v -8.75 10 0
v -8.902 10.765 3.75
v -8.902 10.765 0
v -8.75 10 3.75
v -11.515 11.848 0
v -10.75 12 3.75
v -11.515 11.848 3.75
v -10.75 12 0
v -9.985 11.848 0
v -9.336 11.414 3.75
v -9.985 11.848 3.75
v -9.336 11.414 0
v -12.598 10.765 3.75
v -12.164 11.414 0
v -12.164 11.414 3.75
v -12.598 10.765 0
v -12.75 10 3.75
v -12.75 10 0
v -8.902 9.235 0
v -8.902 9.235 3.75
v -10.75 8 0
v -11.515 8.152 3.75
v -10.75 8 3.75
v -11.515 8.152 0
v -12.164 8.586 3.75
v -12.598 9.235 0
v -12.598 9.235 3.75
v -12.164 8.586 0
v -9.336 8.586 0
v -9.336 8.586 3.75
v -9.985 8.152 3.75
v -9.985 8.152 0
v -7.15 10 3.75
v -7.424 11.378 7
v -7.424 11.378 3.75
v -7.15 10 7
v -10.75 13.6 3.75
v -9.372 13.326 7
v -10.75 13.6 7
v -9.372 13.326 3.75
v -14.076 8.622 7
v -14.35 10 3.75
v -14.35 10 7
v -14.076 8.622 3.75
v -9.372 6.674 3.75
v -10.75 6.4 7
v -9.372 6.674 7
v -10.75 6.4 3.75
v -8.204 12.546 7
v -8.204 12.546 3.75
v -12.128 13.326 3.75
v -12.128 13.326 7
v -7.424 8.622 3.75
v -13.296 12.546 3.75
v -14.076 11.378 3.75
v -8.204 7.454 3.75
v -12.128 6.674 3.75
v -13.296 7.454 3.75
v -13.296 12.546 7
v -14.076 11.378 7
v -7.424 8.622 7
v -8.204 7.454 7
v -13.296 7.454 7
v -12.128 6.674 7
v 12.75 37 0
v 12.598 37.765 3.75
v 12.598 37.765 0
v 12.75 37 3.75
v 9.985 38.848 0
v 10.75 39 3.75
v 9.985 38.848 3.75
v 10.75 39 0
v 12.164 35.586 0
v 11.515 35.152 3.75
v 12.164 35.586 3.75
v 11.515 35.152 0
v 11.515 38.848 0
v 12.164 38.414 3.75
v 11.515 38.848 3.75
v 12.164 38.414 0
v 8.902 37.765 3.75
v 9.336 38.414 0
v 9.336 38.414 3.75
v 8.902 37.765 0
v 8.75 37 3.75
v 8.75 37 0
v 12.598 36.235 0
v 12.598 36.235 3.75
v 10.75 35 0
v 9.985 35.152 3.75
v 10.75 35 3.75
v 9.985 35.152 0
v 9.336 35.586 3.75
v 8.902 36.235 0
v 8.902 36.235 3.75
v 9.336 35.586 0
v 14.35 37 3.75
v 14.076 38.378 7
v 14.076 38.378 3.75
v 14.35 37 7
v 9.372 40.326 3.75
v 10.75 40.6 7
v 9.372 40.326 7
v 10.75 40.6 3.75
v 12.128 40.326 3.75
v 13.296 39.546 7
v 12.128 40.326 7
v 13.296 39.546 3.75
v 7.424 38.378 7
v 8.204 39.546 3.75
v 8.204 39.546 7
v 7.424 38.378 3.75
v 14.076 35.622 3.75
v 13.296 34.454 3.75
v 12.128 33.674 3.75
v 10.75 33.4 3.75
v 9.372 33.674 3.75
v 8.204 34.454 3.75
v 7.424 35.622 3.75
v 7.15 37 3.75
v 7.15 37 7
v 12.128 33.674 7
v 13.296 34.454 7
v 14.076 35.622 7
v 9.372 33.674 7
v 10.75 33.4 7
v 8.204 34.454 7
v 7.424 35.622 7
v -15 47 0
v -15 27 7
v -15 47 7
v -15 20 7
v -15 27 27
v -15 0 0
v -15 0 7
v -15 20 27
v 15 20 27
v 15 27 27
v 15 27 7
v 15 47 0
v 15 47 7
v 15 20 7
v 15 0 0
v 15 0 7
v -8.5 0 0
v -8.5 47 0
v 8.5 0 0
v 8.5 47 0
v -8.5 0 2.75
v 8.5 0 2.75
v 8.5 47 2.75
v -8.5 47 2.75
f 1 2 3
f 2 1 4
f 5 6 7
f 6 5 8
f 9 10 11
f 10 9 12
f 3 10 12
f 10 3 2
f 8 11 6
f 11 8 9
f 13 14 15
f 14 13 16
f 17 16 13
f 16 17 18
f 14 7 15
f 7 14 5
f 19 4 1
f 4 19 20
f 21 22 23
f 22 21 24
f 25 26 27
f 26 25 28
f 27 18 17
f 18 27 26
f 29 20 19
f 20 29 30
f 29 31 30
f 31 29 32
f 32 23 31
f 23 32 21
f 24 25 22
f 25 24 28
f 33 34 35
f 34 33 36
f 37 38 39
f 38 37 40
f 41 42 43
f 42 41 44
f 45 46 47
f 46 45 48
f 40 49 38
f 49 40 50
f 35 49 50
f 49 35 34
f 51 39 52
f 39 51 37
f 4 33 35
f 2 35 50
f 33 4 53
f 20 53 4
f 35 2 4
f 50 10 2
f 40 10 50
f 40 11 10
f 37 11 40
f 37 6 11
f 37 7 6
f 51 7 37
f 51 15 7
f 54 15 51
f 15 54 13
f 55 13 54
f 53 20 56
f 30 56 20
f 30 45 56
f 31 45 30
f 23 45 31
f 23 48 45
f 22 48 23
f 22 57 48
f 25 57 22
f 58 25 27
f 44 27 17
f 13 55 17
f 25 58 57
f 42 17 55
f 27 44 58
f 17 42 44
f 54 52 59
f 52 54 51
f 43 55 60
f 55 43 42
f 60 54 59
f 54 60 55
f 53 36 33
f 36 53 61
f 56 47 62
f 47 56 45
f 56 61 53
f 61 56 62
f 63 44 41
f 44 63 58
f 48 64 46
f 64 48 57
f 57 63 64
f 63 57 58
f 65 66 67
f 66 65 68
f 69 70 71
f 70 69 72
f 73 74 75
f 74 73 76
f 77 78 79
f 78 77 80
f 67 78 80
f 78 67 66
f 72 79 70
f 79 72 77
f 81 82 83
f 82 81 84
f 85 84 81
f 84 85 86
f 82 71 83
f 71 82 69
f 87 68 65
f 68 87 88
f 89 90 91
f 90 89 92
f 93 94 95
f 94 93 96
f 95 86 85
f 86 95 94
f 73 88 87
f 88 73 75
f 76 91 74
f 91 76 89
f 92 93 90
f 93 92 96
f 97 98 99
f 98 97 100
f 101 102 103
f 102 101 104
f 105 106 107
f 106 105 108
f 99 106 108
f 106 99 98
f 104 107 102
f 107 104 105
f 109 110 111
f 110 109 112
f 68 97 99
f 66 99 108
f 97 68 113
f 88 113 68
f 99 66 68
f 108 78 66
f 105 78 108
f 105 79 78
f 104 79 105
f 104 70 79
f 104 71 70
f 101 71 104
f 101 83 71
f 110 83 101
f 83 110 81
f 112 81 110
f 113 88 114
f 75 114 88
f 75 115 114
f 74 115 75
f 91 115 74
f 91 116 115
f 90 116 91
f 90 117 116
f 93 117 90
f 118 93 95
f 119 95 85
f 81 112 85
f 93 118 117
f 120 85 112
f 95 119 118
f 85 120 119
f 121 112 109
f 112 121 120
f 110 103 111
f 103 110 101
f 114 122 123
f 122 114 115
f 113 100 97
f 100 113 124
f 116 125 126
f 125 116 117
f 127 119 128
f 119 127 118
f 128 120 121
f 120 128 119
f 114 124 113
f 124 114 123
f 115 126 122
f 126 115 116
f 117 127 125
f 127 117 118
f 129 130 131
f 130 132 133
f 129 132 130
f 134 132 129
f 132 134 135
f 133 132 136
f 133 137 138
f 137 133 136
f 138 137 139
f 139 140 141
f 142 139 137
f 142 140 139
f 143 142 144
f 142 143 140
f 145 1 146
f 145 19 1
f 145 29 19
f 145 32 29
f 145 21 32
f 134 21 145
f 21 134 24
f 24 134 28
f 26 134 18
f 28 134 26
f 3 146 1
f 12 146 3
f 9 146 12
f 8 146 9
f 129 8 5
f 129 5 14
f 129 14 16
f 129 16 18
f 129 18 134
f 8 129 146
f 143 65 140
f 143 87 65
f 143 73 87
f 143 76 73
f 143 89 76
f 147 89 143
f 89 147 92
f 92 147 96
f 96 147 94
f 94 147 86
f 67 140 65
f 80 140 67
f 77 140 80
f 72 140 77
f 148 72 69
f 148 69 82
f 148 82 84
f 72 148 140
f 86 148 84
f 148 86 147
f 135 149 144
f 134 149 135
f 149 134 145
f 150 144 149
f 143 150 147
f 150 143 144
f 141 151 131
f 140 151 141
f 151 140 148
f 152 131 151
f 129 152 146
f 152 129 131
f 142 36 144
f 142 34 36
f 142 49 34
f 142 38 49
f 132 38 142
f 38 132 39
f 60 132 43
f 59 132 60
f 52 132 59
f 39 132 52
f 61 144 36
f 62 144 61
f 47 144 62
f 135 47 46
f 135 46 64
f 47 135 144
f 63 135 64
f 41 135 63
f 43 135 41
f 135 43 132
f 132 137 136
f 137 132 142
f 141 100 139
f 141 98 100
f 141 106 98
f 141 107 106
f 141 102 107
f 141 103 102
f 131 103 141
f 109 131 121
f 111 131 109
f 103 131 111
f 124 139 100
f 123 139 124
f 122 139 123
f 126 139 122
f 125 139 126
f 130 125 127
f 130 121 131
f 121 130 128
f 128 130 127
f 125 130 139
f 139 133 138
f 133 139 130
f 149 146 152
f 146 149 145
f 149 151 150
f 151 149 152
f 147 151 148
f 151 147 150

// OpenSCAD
// Base is 49mm wide, 25mm deep
// Body is 39mm wide
// Tab is 16mm wide
// Locks are 6mm from back, 12mm from side, 10mm long

module screw (x, y)
{
  translate ([x, y, 0]) {
    cylinder (h=10, d=4.0, $fn=16, center=true);
  }
  translate ([x, y, 6]) {
    cylinder (h=4.5, d=7.2, $fn=16, center=true);
  }
}

translate ([-15, 0, 0]) {
  difference () {
     // Floor
    cube ([30, 47, 27]);

    // Remove cubes to create vertical
    translate ([0, 0, 7]) {
      cube ([30, 20, 27]);
    }
    translate ([0, 27, 7]) {
      cube ([30, 20, 27]);
    }
    
    // Tie-wrap
    translate ([6.5, 0, 0]) {
      cube ([17, 47, 2.75]);
    }
    
    //  Screw holes & head recesses
    screw (4.25, 10);
    screw (25.75, 37);
  } 
}
